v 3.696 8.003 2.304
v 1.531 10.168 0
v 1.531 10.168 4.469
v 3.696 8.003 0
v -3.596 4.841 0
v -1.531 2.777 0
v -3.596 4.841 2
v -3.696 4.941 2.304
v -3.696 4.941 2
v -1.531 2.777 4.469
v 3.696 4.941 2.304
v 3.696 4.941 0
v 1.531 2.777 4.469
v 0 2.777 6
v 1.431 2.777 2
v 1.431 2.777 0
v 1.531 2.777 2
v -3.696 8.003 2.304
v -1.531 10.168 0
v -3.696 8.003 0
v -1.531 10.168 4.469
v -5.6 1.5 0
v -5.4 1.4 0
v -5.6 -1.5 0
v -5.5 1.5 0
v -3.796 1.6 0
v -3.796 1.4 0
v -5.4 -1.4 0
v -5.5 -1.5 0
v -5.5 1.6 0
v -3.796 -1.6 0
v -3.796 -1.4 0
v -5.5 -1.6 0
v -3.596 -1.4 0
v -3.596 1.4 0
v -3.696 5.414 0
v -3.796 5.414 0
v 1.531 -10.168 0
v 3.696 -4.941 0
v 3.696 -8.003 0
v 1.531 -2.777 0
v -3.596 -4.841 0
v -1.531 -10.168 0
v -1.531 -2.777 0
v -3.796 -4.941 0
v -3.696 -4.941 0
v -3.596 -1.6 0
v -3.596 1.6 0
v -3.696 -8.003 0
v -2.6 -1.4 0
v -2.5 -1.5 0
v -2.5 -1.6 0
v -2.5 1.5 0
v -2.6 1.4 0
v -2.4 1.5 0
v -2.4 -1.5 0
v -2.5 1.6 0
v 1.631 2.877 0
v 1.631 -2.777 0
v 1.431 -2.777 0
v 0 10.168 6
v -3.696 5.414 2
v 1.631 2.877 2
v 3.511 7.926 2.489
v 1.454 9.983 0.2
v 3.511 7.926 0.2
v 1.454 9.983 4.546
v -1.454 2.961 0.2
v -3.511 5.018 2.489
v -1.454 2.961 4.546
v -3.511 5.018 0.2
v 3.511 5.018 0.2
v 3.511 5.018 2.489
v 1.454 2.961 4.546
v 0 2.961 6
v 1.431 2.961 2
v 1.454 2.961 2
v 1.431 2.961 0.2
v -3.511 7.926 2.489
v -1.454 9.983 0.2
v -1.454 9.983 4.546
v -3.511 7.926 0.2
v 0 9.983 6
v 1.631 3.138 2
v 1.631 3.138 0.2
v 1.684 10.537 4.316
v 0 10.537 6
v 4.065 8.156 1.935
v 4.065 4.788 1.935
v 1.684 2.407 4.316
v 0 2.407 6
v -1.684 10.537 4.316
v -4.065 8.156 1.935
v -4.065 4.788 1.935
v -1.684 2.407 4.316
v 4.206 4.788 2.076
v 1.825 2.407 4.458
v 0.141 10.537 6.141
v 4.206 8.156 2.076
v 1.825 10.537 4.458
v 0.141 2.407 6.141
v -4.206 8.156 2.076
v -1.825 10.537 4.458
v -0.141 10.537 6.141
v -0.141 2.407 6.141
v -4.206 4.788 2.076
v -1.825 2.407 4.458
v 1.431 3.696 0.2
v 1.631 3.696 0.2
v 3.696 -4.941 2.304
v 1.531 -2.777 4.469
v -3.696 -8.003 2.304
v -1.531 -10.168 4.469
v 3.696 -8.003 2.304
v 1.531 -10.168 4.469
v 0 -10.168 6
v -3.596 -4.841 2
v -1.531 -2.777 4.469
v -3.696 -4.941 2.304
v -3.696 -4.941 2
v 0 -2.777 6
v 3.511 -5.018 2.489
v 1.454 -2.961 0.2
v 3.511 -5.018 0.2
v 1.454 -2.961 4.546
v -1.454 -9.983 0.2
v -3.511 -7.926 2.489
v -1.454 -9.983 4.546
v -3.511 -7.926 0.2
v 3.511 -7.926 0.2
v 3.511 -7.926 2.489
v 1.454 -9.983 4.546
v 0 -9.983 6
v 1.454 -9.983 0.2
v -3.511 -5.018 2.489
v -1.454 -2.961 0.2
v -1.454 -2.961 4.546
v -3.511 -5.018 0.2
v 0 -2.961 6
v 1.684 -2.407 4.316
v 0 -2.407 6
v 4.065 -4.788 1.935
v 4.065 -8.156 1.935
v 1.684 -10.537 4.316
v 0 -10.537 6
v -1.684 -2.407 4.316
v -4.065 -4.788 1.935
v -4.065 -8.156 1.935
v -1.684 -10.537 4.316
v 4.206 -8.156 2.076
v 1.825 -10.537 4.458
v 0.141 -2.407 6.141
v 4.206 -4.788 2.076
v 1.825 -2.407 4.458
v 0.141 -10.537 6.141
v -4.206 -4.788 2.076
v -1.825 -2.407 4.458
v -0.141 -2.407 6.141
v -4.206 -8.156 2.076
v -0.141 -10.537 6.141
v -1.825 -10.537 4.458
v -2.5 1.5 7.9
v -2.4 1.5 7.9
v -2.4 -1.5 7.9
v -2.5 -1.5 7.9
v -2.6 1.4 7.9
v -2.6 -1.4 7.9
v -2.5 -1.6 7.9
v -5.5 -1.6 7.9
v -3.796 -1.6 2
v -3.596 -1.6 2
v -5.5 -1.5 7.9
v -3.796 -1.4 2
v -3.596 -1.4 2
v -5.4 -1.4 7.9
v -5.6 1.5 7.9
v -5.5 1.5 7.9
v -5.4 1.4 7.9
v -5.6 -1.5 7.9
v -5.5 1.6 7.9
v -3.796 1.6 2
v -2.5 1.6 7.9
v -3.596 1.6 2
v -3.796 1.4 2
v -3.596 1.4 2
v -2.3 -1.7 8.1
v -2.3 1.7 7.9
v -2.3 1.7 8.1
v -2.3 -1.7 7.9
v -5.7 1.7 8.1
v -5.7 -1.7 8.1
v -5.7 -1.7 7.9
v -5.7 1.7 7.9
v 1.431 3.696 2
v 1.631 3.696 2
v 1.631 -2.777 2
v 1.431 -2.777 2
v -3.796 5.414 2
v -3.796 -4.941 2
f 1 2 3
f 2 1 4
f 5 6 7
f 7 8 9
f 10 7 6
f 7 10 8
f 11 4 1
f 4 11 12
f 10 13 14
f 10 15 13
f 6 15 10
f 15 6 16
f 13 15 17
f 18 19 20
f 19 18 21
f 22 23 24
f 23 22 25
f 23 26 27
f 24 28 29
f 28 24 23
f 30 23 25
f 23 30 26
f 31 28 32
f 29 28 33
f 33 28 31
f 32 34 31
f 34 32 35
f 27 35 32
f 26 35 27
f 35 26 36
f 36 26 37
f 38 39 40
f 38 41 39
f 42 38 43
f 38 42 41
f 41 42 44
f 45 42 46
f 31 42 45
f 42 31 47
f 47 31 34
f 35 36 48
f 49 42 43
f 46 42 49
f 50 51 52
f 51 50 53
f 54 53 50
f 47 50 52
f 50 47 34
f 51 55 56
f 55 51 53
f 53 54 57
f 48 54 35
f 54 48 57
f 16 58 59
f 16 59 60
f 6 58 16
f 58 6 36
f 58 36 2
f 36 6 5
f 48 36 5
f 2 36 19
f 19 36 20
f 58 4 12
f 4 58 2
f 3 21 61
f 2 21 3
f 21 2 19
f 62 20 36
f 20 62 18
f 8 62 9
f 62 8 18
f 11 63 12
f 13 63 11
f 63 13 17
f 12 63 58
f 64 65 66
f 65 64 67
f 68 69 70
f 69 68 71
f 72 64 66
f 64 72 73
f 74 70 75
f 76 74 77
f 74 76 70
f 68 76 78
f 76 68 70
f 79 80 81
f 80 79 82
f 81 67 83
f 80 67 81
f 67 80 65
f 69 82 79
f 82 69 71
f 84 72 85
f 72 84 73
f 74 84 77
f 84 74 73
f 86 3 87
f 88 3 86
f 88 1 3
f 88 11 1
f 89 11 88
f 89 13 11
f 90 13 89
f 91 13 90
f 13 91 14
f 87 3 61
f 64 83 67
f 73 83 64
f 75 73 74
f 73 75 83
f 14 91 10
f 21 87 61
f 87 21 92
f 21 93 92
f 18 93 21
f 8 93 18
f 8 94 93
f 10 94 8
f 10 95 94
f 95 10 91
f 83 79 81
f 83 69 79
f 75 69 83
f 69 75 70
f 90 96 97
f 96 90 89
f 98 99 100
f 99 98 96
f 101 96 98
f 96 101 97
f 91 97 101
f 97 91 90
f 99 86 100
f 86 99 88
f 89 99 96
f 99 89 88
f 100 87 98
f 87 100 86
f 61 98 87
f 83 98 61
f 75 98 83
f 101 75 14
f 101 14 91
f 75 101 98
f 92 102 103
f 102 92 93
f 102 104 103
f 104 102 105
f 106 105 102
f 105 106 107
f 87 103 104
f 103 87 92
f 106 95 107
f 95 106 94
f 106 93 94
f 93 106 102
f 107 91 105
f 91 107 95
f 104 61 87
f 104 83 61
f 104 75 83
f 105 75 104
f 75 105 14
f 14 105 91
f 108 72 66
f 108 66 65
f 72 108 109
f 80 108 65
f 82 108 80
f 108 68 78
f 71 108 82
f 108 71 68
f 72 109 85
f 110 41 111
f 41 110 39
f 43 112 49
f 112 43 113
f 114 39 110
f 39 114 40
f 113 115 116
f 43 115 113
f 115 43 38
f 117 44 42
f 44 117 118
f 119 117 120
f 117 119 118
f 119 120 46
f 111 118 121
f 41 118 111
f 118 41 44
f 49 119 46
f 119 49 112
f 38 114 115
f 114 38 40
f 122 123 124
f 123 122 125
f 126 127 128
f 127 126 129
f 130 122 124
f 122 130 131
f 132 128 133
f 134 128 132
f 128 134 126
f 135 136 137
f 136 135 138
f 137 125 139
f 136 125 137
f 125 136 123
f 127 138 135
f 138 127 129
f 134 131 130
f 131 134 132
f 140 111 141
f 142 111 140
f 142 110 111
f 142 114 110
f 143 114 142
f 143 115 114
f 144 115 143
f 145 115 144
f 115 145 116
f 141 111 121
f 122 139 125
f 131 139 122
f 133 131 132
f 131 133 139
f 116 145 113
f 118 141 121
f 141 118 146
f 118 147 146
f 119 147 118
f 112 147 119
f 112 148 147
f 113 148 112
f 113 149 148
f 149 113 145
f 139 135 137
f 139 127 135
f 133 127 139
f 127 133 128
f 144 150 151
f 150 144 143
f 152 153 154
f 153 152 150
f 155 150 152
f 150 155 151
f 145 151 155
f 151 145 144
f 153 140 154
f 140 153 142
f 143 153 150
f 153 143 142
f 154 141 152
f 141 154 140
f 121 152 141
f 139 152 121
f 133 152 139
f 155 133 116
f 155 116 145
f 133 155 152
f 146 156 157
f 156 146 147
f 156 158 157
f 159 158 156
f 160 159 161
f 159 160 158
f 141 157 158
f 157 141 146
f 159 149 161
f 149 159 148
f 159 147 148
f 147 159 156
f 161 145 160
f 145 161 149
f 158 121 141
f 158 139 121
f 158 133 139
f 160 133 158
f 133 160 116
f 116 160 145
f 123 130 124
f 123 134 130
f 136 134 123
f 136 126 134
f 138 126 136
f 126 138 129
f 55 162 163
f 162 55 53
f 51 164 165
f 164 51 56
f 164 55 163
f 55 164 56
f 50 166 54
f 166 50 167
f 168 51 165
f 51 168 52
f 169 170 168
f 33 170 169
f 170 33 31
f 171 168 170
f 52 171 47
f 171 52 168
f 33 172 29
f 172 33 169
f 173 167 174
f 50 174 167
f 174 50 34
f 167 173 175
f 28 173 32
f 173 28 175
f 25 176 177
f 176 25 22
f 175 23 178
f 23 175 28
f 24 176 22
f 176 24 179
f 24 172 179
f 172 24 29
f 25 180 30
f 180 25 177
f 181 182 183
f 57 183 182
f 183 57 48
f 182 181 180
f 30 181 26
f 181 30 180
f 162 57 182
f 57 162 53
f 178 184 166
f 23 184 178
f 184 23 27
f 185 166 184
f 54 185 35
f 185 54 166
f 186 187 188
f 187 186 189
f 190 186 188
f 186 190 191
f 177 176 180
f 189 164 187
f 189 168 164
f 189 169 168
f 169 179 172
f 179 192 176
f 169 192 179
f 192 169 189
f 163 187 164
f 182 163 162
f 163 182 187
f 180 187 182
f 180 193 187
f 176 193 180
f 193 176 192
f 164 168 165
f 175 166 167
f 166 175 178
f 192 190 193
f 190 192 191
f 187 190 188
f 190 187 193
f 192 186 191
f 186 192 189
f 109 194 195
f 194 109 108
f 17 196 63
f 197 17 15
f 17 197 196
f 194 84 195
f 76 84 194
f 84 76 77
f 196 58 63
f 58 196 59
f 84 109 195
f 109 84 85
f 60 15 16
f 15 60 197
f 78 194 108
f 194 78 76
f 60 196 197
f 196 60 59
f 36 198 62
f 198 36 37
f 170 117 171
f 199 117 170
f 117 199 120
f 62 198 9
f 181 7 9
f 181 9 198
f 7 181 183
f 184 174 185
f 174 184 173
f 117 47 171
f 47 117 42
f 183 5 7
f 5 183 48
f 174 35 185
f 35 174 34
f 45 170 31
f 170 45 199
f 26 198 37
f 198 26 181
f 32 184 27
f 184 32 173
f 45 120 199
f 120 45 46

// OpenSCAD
// file: lib/element.scad
// constants
gr = 1.61803; // golden ration

// calculate the coordinates for the corners
function point(i, r, corners) =
   let (vz = 360/corners/2)
   let (angle=i*(360/corners) - vz)
   [ r*cos(angle)
   , r*sin(angle)
   ];

function inbetween(p1, p2, procent) =
    let (x_diff = p2[0] - p1[0])
    let (y_diff = p2[1] - p1[1])
    [ p1[0] + x_diff*procent/100
    , p1[1] + y_diff*procent/100
    ];

module glas_color() {
    color("lightblue")
    children();
}

// create a wall
module wall(p1, p2, h, thickness = 300) {
    let (x_diff = p2[0] - p1[0])
    let (y_diff = p2[1] - p1[1])
    let (len = sqrt(pow(x_diff, 2) +
                    pow(y_diff, 2)))
    linear_extrude(height = h)
    translate(p1)
    rotate(atan2(y_diff, x_diff))
    translate([0, -thickness/2])
    square([len, thickness]);
}

module octagon(r, h, corners) {
    coords=[for (i = [0:corners-1]) point(i, r, corners)];
    linear_extrude(height = h)
    polygon(coords);
}

module octawalls(r, h, wt, corners) {
    difference () {
        octagon(r, h, corners);
        translate([0, 0, -wt])
        octagon(r - wt, h + 2*wt, corners);
    }
}

module window(p1, p2, pos, height, sizex, sizey, wt = 300) {
    assert(0 < pos && pos < 100);
    x_diff = p2[0] - p1[0];
    y_diff = p2[1] - p1[1];
    len = sqrt(pow(x_diff, 2) +
               pow(y_diff, 2));
    difference () {
        children();
        // create the hole for the window
        translate([0,0,height])
        translate(p1 + pos*[x_diff, y_diff]/100)
        rotate(atan2(y_diff, x_diff) + 90, [0,0,1])
        cube([4*wt, sizex, sizey], center = true);
    }
    // add the glass to the window
    glas_color()
    translate([0,0,height])
    translate(p1 + pos*[x_diff, y_diff]/100)
    rotate(atan2(y_diff, x_diff) + 90, [0,0,1])
    translate([wt/2, 0, 0])
    cube([wt/2, sizex, sizey], center = true);
}

module color_lawn() {
    color("LawnGreen")
    children();
}

module color_outer_wall() {
    color("MediumSpringGreen")
    children();
}

module color_inner_wall() {
    color("Ivory")
    children();
}

module color_roof() {
    color("Lavender")
    children();
}

module color_floor() {
    color("Wheat")
    children();
}

module color_logs() {
    color("Ivory")
    children();
}

module color_glass() {
    color("azure", 0.25)
    children();
}
// main file
use <lib/element.scad>

// configure the rendering
show_floor = true;
show_roof = true;

// constants
gr = 1.61803; // golden ration

// configure the house
wt = 0.2;  // wall thickness
corners = 8; // number of corners in main room
mrr = 4; // main room radius
mrh = 6; // main room height
mrrh = 2; // main room roof height
rh = 2; // roof height

// calculate the coordinates for the corners
function p(i, r) = point(i, r, corners);

// create a wall of thickness wt
module w(p1, p2, h) {
    wall(p1, p2, h, wt);
}

module o(r, h) {
    octagon(r, h, corners);
}

module ow(r, h) {
    octawalls(r, h, wt, corners);
}

module wi(p1, p2, pos, height, sizex, sizey) {
    window(p1, p2, pos, height, sizex, sizey, wt)
    children();
}

module main_roof(r, th) {
    vr = 45; // main roof angle
    rr = r + 0.4; // roof radius
    module half_roof() {
        assert(corners % 2 == 0);
        translate([0,0, rh + r*tan(vr)])
        rotate(vr, [0, 1, 0])
        rotate(-90)
        difference() {
            scale([1,1/cos(vr), 1])
            o(rr, th);
            translate([0, -rr, 0])
            cube([rr*2, rr*2, 3*th], center = true);
        }
    }
    half_roof();
    rotate(180) half_roof();
}

module side_block() {
    // floor of main room
    if (show_floor) {
        o(mrr, wt);
    }
    // walls of main room
    difference() {
        ow(mrr, mrh);
        main_roof(mrr, wt*200);
    }
    // roof of main room
    if (show_roof) {
        main_roof(mrr, wt);
    }
}

// Left and right octagon blocks
block_offset = mrr + mrr/gr;
translate([0, block_offset, 0]) side_block();
translate([0, -block_offset, 0]) side_block();

//
// Central part of the house
//

// Front wall
pf = p(2, mrr) - [0, block_offset];
w(pf, pf + [0, block_offset], 2);
// Back wall
pb = p(4, mrr) - [0, block_offset];
w(pb, pb + [0, block_offset*1.6], 2);

// Create the tower
module tower() {
    ts = 1.5;
    
    module tower_roof(side, th) {
        cube([2*side + 0.4, 2*side + 0.4, wt], center = true);
    }

    translate([-mrr, 0])
        union() {
            w([ts, ts], [ts, -ts], 8);
            w([ts, -ts], [-ts, -ts], 8);
            w([-ts, -ts], [-ts, ts], 8);
            w([-ts, ts], [ts, ts], 8);
            translate([0,0,8]) tower_roof(ts, 8);
        }
}
tower();
